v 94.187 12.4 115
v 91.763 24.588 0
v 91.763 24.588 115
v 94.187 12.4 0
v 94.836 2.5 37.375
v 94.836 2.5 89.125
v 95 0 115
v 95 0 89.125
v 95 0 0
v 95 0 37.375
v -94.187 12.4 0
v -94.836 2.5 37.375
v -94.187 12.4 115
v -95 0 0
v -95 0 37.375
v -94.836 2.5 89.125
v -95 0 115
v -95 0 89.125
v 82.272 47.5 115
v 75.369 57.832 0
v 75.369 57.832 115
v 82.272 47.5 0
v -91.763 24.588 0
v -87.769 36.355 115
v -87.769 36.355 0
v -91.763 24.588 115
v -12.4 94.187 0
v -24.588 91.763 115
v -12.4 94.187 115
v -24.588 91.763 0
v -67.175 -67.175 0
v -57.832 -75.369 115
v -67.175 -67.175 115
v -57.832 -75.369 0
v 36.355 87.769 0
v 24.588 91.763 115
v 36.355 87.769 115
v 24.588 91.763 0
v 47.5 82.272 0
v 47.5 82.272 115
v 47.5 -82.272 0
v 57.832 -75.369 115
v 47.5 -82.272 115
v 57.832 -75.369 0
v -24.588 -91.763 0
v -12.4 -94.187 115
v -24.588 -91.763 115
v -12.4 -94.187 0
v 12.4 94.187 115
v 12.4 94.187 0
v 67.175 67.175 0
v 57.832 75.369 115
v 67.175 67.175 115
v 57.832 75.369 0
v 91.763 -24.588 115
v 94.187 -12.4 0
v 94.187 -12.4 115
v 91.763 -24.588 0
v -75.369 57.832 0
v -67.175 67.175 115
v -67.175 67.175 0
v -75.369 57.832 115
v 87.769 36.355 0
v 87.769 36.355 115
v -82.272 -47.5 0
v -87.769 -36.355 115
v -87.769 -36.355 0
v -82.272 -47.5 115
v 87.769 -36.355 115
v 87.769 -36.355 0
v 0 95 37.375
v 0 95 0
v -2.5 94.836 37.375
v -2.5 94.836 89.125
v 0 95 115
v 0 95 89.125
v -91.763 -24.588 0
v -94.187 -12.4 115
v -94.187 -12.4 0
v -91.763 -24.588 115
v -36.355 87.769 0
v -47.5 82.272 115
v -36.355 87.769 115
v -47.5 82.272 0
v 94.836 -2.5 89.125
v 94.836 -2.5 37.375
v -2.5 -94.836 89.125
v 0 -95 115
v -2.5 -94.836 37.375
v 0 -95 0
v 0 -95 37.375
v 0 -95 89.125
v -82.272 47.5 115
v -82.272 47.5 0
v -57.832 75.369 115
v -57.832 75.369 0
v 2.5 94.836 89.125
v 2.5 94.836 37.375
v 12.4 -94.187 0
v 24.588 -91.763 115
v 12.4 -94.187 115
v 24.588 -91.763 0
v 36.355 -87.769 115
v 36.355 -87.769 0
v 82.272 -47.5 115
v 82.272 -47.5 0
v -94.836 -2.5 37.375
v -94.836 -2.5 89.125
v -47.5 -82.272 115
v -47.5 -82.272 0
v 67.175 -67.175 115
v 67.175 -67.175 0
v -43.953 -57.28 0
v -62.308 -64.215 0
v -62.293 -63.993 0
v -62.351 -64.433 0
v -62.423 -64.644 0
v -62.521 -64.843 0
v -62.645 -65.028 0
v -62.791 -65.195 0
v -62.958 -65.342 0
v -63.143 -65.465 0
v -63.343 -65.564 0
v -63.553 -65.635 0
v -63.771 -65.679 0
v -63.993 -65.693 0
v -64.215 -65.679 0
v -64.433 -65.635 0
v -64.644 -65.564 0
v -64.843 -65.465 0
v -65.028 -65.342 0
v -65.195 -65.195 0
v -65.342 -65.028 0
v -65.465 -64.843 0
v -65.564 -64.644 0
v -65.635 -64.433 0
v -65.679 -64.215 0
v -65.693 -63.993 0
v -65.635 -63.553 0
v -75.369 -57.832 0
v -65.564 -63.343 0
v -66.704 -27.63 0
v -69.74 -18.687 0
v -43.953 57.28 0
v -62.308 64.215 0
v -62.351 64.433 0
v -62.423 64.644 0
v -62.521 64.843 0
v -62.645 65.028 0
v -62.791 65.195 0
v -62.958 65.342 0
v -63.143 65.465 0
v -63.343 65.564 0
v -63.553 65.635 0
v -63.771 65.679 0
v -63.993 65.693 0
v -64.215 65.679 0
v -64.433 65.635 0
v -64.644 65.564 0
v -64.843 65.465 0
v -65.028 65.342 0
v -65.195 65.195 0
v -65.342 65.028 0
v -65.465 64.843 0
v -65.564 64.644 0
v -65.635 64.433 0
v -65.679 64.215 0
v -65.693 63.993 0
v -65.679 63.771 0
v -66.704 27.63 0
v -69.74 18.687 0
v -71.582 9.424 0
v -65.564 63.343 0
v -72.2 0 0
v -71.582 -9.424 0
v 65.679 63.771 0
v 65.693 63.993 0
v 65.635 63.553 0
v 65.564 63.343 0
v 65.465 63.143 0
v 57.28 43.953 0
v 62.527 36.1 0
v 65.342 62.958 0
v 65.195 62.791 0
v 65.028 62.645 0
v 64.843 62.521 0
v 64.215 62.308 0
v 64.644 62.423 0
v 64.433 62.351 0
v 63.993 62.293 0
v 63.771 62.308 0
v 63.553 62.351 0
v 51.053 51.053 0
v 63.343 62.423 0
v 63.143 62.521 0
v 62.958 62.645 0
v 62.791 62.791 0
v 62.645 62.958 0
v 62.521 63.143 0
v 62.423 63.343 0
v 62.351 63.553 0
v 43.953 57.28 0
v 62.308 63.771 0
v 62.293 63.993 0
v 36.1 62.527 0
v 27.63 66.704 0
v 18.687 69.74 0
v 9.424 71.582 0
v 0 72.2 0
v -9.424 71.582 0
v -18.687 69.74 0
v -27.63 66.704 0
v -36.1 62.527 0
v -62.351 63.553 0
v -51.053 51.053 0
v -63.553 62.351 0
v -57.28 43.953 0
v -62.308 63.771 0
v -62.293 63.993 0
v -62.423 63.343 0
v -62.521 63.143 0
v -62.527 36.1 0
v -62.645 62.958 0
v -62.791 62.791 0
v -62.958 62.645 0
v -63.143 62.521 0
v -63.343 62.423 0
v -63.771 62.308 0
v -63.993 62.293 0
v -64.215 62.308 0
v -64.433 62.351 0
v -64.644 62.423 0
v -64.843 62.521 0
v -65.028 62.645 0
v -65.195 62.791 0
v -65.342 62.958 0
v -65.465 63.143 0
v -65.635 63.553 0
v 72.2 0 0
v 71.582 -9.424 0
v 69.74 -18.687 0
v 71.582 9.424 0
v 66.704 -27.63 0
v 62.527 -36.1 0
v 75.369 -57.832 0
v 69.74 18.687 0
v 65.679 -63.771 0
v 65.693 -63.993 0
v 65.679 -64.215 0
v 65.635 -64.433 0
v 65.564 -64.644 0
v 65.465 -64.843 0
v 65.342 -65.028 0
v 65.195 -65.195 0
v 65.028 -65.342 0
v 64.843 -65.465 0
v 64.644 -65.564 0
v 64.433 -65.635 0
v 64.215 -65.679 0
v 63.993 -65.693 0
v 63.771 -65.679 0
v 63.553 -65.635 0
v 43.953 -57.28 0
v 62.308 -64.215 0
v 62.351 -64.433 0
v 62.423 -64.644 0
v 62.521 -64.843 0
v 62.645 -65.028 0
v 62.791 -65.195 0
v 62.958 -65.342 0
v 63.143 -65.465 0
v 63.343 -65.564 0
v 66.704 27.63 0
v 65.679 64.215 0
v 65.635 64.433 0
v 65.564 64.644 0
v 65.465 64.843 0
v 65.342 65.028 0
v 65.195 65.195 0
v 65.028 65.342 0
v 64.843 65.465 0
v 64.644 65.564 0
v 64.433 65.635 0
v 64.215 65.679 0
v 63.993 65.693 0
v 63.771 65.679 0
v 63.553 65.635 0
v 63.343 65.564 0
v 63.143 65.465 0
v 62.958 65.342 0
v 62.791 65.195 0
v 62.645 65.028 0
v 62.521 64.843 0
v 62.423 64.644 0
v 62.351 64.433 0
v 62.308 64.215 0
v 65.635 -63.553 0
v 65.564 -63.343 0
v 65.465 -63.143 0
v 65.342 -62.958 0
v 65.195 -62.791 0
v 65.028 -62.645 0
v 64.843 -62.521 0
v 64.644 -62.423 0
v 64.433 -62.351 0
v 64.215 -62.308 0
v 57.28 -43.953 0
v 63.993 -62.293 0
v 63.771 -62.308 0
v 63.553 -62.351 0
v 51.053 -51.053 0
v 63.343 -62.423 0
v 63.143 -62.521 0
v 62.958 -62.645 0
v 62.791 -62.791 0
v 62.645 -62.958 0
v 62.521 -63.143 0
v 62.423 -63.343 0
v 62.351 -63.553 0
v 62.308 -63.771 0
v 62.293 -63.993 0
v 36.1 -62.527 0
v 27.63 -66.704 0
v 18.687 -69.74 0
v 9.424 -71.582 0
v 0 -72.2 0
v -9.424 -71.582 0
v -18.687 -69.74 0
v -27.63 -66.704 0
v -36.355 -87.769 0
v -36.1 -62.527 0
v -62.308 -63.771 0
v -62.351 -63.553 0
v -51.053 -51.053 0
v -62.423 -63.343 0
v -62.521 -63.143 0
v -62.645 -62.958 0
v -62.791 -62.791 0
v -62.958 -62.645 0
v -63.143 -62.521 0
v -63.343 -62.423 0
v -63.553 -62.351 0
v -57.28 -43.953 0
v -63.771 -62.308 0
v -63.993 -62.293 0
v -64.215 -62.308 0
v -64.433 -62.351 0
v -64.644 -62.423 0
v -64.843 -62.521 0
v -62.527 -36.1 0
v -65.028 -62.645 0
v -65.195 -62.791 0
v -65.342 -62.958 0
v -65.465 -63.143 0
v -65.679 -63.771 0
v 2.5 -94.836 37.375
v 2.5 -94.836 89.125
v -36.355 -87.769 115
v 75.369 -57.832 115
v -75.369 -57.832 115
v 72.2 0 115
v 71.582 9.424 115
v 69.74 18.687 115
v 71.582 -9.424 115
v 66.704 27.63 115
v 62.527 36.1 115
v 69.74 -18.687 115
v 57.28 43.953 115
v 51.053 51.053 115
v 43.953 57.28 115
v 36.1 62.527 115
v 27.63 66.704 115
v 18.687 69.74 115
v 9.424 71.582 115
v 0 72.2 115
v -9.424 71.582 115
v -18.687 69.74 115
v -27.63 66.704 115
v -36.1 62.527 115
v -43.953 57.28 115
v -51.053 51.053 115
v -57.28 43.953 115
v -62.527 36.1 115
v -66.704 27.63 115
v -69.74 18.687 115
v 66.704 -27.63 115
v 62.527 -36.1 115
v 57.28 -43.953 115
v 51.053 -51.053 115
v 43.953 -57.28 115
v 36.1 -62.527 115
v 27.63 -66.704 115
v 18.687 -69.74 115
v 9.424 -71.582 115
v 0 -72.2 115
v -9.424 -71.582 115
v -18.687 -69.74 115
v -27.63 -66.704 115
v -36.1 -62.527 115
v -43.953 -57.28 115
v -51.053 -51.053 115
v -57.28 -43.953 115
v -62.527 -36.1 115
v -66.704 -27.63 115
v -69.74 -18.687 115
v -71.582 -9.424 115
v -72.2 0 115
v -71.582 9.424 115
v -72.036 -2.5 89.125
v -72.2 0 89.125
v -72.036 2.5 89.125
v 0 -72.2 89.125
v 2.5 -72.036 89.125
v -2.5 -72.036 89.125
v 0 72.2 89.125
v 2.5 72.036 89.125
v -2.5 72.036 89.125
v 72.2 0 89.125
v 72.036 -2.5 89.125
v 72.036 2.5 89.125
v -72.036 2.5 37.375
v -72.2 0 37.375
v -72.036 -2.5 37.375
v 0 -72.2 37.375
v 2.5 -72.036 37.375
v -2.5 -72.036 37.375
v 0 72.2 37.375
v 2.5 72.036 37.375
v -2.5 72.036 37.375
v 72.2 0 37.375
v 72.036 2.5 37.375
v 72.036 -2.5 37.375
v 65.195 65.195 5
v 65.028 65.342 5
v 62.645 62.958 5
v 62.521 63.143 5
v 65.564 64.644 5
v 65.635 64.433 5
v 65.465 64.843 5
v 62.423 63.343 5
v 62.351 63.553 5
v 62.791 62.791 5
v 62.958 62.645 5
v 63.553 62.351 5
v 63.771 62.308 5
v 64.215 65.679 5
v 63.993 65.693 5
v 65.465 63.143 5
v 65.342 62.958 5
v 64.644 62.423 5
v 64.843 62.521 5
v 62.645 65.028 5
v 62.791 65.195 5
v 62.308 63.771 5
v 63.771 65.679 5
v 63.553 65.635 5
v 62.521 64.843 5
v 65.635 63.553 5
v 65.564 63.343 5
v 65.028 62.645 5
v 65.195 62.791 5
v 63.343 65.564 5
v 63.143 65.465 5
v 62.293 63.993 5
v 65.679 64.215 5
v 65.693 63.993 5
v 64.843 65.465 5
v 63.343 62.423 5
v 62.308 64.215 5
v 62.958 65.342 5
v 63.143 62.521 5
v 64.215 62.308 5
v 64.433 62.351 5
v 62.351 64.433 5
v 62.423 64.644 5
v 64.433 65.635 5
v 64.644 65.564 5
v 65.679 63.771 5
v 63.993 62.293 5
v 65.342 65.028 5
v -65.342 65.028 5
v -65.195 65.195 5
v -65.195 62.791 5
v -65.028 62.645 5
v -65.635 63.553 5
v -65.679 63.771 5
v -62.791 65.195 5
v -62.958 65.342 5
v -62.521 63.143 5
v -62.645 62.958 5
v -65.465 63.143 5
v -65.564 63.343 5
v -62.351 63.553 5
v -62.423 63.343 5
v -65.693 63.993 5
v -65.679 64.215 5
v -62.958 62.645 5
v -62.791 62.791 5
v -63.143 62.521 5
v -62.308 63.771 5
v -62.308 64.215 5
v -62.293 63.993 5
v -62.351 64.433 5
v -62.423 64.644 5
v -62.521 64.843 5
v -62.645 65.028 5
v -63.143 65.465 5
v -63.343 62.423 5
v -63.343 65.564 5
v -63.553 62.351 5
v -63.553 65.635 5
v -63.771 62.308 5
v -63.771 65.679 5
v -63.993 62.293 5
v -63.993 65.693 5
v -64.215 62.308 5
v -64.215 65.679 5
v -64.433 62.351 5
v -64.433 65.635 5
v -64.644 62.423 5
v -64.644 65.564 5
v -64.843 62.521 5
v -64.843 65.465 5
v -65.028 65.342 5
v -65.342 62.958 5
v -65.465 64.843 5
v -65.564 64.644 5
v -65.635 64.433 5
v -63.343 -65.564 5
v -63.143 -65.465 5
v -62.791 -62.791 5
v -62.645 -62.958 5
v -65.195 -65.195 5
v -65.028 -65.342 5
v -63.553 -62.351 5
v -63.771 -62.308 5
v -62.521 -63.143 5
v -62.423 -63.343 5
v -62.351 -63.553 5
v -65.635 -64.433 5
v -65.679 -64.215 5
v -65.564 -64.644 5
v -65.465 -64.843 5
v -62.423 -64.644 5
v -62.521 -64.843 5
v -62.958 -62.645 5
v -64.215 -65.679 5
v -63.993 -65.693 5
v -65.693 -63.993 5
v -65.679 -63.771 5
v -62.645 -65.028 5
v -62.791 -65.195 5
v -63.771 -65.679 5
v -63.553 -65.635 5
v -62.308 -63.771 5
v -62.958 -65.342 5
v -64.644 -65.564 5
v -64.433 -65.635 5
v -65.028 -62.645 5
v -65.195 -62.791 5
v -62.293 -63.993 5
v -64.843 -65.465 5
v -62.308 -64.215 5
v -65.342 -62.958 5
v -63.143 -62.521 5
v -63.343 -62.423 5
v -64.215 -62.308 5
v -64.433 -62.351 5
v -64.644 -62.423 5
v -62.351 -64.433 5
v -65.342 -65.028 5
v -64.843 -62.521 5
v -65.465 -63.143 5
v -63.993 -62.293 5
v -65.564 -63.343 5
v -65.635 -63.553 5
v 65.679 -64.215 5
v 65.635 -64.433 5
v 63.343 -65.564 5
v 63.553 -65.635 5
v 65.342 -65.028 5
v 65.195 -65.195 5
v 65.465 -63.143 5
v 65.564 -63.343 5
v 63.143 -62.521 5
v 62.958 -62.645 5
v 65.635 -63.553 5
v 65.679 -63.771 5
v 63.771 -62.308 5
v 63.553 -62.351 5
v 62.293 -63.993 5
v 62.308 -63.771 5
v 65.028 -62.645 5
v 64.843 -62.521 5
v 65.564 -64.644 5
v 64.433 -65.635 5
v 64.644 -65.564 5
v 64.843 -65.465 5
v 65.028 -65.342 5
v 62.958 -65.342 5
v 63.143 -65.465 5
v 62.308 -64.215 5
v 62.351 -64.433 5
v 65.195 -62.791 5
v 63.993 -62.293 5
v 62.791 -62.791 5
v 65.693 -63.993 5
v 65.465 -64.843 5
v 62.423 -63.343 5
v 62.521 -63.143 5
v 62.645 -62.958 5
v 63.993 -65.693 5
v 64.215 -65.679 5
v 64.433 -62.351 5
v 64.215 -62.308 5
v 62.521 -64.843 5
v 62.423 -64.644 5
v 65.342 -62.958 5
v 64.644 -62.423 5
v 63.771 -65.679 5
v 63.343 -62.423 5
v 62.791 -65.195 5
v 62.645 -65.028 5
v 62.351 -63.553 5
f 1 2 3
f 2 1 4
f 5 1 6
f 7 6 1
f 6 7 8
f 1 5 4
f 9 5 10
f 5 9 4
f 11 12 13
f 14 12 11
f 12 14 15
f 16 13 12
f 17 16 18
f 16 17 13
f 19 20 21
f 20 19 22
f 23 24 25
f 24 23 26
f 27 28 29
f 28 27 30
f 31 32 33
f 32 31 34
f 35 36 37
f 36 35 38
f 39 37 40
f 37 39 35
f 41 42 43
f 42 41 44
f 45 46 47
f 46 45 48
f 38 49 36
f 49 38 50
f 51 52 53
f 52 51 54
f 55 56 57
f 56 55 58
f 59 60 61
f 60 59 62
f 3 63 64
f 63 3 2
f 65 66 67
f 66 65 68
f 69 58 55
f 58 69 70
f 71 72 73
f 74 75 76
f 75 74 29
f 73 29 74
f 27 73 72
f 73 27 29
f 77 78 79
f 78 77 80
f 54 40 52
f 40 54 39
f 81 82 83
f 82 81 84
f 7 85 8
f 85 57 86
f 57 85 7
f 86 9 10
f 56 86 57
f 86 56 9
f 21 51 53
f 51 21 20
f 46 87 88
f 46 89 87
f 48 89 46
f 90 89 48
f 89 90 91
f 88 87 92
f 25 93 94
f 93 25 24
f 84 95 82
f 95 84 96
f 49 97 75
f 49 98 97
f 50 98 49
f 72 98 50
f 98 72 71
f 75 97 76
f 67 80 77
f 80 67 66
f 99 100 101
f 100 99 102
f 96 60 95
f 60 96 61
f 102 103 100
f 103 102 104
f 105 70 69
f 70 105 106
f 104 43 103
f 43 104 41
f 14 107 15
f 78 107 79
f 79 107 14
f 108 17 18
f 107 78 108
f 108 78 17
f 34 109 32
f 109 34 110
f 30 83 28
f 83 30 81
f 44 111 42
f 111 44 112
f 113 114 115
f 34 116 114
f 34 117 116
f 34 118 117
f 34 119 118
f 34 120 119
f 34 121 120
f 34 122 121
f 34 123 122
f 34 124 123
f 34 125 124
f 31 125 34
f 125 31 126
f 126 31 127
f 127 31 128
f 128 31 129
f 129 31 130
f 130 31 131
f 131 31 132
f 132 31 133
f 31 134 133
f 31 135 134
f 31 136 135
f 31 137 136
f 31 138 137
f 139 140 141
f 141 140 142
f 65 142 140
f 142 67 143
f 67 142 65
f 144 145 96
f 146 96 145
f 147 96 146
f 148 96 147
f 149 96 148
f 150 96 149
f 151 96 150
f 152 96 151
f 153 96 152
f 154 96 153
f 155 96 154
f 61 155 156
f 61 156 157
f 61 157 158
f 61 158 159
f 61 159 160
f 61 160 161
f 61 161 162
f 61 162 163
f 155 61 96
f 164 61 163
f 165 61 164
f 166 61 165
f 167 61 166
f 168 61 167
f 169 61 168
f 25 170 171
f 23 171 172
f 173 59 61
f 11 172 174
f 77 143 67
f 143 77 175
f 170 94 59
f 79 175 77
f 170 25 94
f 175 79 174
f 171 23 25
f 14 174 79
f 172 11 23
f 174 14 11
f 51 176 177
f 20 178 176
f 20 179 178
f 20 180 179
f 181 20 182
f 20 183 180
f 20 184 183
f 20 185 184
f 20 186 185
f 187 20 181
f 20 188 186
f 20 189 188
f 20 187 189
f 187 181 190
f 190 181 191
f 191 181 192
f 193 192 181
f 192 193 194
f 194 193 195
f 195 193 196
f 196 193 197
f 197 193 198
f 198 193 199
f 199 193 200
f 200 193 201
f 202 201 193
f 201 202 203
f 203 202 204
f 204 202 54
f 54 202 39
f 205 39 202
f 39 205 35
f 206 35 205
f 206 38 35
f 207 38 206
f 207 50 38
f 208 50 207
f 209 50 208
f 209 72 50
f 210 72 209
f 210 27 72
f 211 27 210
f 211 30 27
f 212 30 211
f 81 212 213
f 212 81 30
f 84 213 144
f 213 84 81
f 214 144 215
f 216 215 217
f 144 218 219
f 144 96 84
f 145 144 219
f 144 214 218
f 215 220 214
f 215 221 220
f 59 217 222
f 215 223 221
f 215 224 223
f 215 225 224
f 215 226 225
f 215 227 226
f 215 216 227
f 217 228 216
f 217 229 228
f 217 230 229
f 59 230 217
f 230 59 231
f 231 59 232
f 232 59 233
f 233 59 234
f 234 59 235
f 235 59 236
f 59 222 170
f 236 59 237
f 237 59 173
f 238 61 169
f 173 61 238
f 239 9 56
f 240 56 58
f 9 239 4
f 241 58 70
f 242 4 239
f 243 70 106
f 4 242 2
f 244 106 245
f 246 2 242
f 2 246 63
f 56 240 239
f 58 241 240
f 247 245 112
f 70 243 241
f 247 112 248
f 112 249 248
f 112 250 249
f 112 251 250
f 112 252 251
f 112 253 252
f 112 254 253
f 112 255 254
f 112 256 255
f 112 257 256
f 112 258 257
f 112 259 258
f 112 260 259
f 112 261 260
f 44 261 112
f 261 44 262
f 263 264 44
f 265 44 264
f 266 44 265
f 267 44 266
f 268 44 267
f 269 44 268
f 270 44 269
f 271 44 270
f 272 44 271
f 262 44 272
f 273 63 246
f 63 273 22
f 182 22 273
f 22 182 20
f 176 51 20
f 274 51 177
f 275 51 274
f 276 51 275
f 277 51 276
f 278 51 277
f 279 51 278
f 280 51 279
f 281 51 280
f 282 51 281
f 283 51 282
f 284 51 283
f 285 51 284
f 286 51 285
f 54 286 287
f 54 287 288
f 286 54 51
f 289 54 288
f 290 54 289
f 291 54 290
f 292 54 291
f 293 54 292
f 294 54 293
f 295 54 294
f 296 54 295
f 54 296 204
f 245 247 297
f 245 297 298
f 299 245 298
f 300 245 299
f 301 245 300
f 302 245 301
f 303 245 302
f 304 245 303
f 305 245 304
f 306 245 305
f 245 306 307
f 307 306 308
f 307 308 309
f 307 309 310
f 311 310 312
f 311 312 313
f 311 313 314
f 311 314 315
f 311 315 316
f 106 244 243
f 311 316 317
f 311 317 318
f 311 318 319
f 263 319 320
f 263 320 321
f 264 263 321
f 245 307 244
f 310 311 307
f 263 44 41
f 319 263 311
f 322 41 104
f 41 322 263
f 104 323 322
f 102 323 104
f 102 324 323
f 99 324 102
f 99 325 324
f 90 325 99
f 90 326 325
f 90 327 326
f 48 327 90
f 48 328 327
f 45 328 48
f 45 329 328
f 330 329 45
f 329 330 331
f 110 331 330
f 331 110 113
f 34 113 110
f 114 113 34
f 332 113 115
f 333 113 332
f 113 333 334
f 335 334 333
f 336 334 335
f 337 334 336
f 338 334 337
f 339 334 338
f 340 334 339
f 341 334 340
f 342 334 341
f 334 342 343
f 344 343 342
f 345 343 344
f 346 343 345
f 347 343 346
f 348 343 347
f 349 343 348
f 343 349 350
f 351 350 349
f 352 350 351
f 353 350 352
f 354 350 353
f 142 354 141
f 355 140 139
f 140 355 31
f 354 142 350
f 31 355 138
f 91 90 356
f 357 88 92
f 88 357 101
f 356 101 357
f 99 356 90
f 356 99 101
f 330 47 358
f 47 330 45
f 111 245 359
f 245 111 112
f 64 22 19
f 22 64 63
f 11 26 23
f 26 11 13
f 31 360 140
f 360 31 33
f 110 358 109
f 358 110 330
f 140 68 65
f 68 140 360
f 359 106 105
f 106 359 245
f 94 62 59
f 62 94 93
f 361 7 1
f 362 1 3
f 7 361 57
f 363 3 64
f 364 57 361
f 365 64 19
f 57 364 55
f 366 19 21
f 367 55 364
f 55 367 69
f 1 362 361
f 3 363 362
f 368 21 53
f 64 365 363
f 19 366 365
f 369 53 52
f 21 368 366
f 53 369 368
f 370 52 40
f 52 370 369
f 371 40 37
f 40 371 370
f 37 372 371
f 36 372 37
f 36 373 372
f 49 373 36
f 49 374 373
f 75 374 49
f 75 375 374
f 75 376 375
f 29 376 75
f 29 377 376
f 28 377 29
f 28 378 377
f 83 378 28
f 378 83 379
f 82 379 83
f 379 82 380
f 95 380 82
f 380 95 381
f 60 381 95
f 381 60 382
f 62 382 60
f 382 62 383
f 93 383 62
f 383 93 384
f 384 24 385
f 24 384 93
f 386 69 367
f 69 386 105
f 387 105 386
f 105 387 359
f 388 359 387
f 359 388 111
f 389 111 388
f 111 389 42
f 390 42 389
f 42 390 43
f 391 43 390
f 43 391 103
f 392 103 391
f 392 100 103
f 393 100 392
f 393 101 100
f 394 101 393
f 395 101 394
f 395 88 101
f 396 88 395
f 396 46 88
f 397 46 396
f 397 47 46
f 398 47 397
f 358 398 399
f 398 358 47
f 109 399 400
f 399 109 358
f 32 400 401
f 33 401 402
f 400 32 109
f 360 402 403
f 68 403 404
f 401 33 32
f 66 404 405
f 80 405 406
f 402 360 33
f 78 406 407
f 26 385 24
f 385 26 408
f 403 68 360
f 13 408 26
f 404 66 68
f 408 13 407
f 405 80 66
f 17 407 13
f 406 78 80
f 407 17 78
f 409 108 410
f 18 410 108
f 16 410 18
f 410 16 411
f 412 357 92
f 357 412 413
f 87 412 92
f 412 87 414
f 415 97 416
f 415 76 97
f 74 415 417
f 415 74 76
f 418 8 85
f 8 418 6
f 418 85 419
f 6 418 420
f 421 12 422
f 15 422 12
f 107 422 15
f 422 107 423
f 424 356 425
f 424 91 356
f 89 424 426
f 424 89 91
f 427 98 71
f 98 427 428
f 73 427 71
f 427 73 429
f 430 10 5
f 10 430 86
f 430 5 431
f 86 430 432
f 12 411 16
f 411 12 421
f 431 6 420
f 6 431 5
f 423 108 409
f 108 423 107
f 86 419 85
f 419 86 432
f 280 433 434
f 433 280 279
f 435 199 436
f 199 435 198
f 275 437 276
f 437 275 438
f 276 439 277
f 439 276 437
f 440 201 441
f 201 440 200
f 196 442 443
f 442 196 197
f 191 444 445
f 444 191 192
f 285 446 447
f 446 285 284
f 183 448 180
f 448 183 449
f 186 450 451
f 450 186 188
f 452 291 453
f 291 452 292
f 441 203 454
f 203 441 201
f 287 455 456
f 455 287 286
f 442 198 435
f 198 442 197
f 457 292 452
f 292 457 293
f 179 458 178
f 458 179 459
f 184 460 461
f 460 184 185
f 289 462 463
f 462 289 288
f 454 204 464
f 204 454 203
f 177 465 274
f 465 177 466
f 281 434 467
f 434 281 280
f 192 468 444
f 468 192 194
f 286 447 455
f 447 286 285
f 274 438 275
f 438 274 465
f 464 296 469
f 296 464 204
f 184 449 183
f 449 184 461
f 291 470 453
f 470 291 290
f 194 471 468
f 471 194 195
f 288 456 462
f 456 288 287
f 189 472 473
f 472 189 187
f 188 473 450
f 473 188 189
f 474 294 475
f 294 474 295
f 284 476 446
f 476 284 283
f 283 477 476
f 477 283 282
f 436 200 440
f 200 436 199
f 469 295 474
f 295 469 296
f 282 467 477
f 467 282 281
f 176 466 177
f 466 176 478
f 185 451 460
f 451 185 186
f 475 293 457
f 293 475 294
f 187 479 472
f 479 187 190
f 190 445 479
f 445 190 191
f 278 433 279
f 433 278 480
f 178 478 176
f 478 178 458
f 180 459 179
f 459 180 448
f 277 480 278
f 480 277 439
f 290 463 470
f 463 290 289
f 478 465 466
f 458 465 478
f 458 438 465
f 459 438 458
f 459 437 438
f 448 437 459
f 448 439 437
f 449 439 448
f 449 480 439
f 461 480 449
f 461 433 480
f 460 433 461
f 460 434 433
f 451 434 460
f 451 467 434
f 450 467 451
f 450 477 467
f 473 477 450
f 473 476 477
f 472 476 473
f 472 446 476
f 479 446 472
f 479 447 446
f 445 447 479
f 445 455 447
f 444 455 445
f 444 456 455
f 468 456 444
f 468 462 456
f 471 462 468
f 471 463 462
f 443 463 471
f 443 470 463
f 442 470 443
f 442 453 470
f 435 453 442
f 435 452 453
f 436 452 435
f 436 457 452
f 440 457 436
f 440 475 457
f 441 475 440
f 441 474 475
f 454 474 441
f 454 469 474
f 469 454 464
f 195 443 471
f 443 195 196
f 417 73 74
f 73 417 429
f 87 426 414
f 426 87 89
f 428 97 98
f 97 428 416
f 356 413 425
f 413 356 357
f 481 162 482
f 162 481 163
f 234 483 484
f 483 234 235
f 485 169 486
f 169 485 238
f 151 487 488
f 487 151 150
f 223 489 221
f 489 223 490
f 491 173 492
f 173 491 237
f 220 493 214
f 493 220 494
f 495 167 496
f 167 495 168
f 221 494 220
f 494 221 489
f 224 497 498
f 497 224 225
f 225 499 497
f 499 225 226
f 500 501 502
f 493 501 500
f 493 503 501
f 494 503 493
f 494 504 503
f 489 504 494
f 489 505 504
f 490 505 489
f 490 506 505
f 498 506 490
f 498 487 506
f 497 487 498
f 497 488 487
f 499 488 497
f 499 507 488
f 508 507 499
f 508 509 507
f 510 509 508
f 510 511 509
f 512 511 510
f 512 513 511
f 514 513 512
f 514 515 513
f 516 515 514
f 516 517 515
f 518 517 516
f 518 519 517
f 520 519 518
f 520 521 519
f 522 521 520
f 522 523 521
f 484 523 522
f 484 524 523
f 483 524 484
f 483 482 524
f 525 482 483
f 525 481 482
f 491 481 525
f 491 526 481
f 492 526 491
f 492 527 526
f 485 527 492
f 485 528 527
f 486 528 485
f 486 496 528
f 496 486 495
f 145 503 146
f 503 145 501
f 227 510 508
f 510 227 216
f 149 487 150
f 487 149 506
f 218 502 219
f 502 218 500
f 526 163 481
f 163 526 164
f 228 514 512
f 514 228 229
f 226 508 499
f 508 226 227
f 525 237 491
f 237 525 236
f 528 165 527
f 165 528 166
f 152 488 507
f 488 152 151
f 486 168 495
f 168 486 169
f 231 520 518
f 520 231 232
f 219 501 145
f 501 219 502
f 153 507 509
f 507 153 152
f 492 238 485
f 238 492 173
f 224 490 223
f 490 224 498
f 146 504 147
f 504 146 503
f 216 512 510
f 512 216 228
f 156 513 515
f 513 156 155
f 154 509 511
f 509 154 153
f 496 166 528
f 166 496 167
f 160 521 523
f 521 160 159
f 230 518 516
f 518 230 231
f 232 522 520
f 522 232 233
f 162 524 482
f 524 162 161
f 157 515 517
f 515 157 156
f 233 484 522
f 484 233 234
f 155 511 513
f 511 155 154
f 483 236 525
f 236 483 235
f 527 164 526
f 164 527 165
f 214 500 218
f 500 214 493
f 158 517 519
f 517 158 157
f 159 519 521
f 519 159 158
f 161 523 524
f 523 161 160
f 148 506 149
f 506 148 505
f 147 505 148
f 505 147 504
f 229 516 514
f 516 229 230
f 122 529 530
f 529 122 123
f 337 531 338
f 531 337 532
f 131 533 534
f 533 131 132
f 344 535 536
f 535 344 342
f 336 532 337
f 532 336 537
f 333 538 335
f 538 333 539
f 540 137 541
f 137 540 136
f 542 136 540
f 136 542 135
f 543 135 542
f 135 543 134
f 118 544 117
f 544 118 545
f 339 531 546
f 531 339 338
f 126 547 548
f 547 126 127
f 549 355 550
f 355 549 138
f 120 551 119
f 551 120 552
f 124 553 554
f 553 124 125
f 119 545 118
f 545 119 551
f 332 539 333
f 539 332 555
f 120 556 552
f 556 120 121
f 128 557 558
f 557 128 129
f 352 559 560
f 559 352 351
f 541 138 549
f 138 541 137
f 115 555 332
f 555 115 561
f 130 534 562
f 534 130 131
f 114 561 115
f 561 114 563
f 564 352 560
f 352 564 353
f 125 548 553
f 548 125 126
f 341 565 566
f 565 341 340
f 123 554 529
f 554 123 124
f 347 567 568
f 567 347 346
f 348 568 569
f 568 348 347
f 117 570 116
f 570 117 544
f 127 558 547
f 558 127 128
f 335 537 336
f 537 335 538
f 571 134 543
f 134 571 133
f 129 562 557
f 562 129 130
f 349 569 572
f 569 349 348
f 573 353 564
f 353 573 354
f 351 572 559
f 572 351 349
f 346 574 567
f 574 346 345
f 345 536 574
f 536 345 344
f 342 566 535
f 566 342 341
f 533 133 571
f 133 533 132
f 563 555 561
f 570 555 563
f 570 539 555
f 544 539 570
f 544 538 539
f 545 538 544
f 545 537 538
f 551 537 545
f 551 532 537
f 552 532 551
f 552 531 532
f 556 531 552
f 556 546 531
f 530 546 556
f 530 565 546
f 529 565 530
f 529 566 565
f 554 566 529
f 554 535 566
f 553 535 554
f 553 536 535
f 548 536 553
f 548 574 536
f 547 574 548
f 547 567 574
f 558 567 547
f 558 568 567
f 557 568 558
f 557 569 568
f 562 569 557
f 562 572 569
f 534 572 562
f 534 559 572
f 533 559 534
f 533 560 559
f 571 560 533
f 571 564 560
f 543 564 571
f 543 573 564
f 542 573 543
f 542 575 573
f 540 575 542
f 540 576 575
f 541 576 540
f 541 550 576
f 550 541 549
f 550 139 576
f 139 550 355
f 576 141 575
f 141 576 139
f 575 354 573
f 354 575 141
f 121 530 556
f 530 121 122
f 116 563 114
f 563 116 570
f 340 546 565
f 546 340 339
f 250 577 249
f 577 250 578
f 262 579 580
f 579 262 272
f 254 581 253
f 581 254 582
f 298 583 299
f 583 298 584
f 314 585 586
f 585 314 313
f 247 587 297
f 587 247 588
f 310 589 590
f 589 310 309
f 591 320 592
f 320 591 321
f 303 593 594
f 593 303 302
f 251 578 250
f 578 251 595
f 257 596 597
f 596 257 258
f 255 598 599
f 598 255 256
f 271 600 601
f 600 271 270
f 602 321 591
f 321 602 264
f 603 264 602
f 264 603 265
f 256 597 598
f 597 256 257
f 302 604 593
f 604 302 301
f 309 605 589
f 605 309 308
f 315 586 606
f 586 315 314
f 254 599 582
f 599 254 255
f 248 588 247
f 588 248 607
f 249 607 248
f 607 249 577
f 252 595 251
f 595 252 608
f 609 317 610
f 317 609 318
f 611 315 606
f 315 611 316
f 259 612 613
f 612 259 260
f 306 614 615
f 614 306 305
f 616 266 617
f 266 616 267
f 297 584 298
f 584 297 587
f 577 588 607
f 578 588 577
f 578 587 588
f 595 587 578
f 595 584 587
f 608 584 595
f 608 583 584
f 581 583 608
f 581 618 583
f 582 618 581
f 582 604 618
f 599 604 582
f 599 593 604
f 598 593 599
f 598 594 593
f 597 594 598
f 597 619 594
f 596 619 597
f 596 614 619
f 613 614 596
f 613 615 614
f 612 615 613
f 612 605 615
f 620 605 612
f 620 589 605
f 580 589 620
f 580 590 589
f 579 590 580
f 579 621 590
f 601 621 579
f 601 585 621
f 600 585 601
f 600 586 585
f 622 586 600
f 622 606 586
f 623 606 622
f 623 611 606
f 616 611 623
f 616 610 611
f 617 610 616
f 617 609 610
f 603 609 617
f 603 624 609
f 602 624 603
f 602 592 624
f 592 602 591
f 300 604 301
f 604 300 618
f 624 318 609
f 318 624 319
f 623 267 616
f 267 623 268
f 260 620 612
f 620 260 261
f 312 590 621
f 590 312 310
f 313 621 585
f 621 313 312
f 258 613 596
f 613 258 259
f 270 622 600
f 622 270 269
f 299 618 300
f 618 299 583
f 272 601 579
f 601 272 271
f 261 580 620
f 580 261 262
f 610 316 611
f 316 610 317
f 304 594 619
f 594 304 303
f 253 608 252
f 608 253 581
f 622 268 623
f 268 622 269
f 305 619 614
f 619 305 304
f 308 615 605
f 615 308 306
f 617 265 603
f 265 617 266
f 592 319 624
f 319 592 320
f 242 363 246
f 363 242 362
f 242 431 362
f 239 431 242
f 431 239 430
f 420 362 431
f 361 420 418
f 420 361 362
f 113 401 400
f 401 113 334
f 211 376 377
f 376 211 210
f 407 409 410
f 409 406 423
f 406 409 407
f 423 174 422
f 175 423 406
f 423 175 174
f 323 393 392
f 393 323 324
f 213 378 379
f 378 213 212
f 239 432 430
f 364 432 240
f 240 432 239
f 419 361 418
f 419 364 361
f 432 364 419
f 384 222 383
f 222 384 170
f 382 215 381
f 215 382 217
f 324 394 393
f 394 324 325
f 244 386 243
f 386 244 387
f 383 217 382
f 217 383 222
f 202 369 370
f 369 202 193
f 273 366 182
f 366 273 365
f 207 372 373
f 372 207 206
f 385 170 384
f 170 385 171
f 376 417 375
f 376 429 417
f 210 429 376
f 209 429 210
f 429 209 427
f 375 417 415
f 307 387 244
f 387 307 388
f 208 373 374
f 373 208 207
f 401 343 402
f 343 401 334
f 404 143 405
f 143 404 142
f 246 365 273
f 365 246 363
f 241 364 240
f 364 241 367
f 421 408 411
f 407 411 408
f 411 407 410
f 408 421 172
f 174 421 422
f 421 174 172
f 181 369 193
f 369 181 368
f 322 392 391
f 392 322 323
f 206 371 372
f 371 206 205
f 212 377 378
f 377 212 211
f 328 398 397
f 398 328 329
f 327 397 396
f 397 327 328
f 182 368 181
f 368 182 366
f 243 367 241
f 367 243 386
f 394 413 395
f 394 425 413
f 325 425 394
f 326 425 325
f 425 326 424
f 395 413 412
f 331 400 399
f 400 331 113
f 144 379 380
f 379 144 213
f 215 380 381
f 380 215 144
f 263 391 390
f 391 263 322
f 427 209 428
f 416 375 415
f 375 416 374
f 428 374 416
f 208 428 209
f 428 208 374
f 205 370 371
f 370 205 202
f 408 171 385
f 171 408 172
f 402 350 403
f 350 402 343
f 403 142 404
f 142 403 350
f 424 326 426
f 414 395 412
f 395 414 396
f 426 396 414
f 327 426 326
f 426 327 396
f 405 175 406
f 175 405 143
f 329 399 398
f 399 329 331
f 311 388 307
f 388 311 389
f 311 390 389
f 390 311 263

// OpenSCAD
// ============================================================================
// Get Me An Alt — Parametric OpenSCAD Module
// Part: PRT-08 — Coanda Airfoil Loop — Upper Jet-Slot Crown (coanda-airfoil-upper)
// Function: Completes the 360° Coanda jet loop and entrains 15x ambient air.
// Target Bounding Box (mm): [190, 190, 115]
// Print Material: Matte PLA+ | Min Wall: >= 1.6mm | Tolerance: 0.2mm
// ============================================================================
$fn = 48;
part_width = 190;
part_depth = 190;
part_height = 115;
wall_thickness = 3;
floor_thickness = 3;
corner_radius = 4;
tolerance = 0.2;
m3_clearance_d = 3.4; // M3 screw clearance hole (3.0mm + 2*0.2mm)

module rounded_rect_prism(w, d, h, r) {
  cr = max(0.5, min(r, min(w, d) / 2 - 0.1));
  linear_extrude(height = h)
    offset(r = cr)
      offset(r = -cr)
        square([w, d], center = true);
}

module part_coanda_airfoil_upper() {
  difference() {
    union() {
      // Base mounting flange
      cylinder(h = 4, r = 95);
      // Cylindrical isolation collar
      cylinder(h = part_height, r = 95);
    }
    // Central bore with 0.2mm fit tolerance
    translate([0, 0, -1])
      cylinder(h = part_height + 2, r = 72 + tolerance);
    // Side water intake relief slots
    for (ang = [0, 90, 180, 270]) {
      rotate([0, 0, ang])
        translate([0, 0, part_height * 0.55])
          cube([209, 5.0, part_height * 0.45], center = true);
      // Flange M3 anchor holes
      rotate([0, 0, ang + 45])
        translate([90.5, 0, -1])
          cylinder(h = 6, d = m3_clearance_d);
    }
  }
}

part_coanda_airfoil_upper();
